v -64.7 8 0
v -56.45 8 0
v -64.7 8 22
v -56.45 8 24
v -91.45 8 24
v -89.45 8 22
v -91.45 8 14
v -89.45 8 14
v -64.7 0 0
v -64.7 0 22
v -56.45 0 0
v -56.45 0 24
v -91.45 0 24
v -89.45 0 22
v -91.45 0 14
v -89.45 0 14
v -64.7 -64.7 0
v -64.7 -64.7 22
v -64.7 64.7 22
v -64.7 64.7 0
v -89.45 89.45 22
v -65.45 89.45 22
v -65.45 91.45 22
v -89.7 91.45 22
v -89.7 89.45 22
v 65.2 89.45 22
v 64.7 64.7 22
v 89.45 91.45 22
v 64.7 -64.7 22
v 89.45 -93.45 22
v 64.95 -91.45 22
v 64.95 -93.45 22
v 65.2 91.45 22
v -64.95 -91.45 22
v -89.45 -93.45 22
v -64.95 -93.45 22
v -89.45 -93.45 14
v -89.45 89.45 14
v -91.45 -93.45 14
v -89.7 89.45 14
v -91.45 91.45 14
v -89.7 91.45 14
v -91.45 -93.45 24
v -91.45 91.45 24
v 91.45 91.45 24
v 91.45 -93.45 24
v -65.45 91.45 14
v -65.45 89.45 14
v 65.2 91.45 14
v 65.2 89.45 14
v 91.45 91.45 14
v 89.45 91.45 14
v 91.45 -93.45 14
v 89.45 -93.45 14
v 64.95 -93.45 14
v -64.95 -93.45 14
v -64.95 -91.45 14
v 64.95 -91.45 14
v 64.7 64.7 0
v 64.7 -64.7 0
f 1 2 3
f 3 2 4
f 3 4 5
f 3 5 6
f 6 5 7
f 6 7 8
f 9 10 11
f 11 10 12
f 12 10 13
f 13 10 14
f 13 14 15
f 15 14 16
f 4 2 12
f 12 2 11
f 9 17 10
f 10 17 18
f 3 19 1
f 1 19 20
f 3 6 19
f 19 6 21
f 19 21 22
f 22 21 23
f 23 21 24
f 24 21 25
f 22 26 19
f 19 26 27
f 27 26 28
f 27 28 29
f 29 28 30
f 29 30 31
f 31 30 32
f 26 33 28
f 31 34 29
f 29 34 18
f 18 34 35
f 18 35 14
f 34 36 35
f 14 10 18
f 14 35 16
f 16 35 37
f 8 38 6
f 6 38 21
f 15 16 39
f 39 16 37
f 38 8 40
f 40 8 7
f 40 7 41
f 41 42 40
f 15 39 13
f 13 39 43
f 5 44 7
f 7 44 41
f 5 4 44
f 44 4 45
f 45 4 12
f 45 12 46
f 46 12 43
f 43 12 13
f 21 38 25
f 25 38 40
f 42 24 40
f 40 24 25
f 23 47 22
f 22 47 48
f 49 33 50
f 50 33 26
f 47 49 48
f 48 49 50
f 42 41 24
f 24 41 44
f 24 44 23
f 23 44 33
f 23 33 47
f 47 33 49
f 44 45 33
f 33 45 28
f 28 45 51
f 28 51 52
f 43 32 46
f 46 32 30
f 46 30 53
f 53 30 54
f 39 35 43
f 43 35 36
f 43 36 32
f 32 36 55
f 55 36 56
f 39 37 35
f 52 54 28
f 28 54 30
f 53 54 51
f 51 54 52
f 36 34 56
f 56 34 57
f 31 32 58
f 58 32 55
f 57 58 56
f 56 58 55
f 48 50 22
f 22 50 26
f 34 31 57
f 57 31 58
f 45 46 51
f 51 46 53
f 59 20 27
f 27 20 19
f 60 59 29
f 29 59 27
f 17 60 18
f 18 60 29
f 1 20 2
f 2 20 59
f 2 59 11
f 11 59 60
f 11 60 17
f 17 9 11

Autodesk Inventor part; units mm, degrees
ref_plane "YZ Plane" through (0, 0, 0) normal (1, 0, 0) x (0, 1, 0)
ref_plane "XZ Plane" through (0, 0, 0) normal (0, 1, 0) x (-1, 0, 0)
ref_plane "XY Plane" through (0, 0, 0) normal (0, 0, 1) x (1, 0, 0)
sketch "Skizze1" plane through (0, 0, 0) normal (0, 0, 1) x (1, 0, 0)
  line L0 (-64.7, -64.7) -> (64.7, -64.7)
  line L1 (64.7, -64.7) -> (64.7, 64.7)
  line L2 (64.7, 64.7) -> (-64.7, 64.7)
  line L3 (-64.7, 64.7) -> (-64.7, -64.7)
  line L4 (-64.7, -64.7) -> (64.7, 64.7) construction
  line L5 (64.7, -64.7) -> (-64.7, 64.7) construction
  point P0 (0, 0)
  dimension "d0" = 129.4
  dimension "d1" = 129.4
extrude "Extrusion1" add sketch "Skizze1" along normal blind 22
sketch "Skizze2" plane through (0, 0, 22) normal (0, 0, 1) x (1, 0, 0)
  line L0 (-132.05, 89.45) -> (128.95, 89.45)
  line L1 (64.7, 64.7) -> (-64.7, 64.7) projected
  line L2 (89.45, 116.05) -> (89.45, -84.95)
  line L3 (-89.45, 121.95) -> (-89.45, -89.05)
  line L4 (64.7, -64.7) -> (64.7, 64.7) projected
  line L5 (-64.7, 64.7) -> (-64.7, -64.7) projected
  line L6 (-157.95, -91.45) -> (148.05, -91.45)
  line L7 (-64.7, -64.7) -> (64.7, -64.7) projected
  line L8 (89.45, -84.95) -> (89.45, -91.95)
  line L9 (-89.45, -89.05) -> (-89.45, -94.05)
  point P0 (0, 0)
  point P1 (-89.45, -91.45)
  point P2 (89.45, -91.45)
  point P3 (89.45, 89.45)
  point P4 (-89.45, 89.45)
  dimension "d4" = 24.75
  dimension "d5" = 24.75
  dimension "d6" = 24.75
  dimension "d7" = 26.75
extrude "Extrusion2" add sketch "Skizze2" along normal blind 2 contours L0 L2 L8 L6 L9 L3 | L4 L7 L5 L1
sketch "Skizze3" plane through (0, 0, 24) normal (0, 0, 1) x (1, 0, 0)
  line L0 (-91.45, 91.45) -> (91.45, 91.45)
  line L1 (91.45, 91.45) -> (91.45, -93.45)
  line L2 (91.45, -93.45) -> (-91.45, -93.45)
  line L3 (-91.45, -93.45) -> (-91.45, 91.45)
  line L4 (89.45, 89.45) -> (-89.45, 89.45) projected
  line L5 (-89.45, 89.45) -> (-89.45, -91.45) projected
  line L6 (89.45, -91.45) -> (89.45, 89.45) projected
  line L7 (-89.45, -91.45) -> (89.45, -91.45) projected
  line L8 (-89.45, 89.45) -> (-89.45, -91.45) projected
  line L9 (-89.45, 89.45) -> (89.45, 89.45)
  line L10 (89.45, 89.45) -> (89.45, -91.45)
  line L11 (89.45, -91.45) -> (-89.45, -91.45)
  line L12 (-89.45, -91.45) -> (-89.45, 89.45)
  point P0 (0, 0)
  dimension "d10" = 2
  dimension "d11" = 2
  dimension "d12" = 2
  dimension "d13" = 2
extrude "Extrusion3" add sketch "Skizze3" against normal blind 10
sketch "Skizze4" plane through (0, 0, 14) normal (0, 0, -1) x (-1, 0, 0)
  line L0 (89.45, -91.45) -> (-89.45, -91.45) projected
  line L1 (-91.45, -93.45) -> (91.45, -93.45) projected
  line L2 (89.45, -91.45) -> (64.95, -91.45)
  line L3 (64.95, -91.45) -> (64.95, -93.45)
  line L4 (64.95, -93.45) -> (89.45, -93.45)
  line L5 (89.45, -93.45) -> (89.45, -91.45)
  line L6 (-89.45, -91.45) -> (-64.95, -91.45)
  line L7 (-64.95, -91.45) -> (-64.95, -93.45)
  line L8 (-64.95, -93.45) -> (-89.45, -93.45)
  line L9 (-89.45, -93.45) -> (-89.45, -91.45)
  point P0 (0, 0)
  point P1 (89.45, -93.45)
  point P2 (-89.45, -91.45)
  point P3 (-89.45, -93.45)
  point P4 (-64.95, -93.45)
  point P5 (-64.95, -91.45)
  dimension "d16" = 24.5
  dimension "d17" = 24.5
extrude "Extrusion4" cut sketch "Skizze4" against normal up to surface (8 mm away) contours L5 L1 L3 L0 | L7 L1 L9 L0
sketch "Skizze6" plane through (91.45, -93.45, 24) normal (1, 0, 0) x (0, 0, -1)
  line L0 (10, 0) -> (10, 182.9) projected
  line L1 (0, 0) -> (10, 0)
  line L2 (10, 0) -> (10, 27)
  line L3 (10, 27) -> (0, 27)
  line L4 (0, 27) -> (0, 0)
  line L5 (0, 184.9) -> (10, 184.9) projected
  line L6 (0, 184.9) -> (10, 184.9)
  line L7 (10, 184.9) -> (10, 157.9)
  line L8 (10, 157.9) -> (0, 157.9)
  line L9 (0, 157.9) -> (0, 184.9)
  point P0 (24, 93.45)
  dimension "d20" = 27
  dimension "d21" = 27
extrude "Extrusion5" cut sketch "Skizze6" against normal up to surface (2 mm away)
sketch "Skizze7" plane through (-91.45, 91.45, 24) normal (0, 1, 0) x (1, 0, 0)
  line L0 (182.9, 10) -> (180.9, 10) projected
  line L1 (180.9, 10) -> (180.9, 2) projected
  line L2 (180.9, 0) -> (0, 0) projected
  line L3 (182.9, 10) -> (182.9, 0) projected
  line L4 (181.15, 2) -> (156.65, 2)
  line L5 (156.65, 2) -> (156.65, 10)
  line L6 (156.65, 10) -> (181.15, 10)
  line L7 (181.15, 10) -> (181.15, 2)
  line L8 (180.9, 10) -> (2, 10) projected
  line L9 (0, 0) -> (0, 10) projected
  line L10 (1.75, 2) -> (26, 2)
  line L11 (26, 2) -> (26, 10)
  line L12 (26, 10) -> (1.75, 10)
  line L13 (1.75, 10) -> (1.75, 2)
  point P0 (91.45, 24)
  point P1 (181.15, 10)
  point P2 (1.75, 10)
  point P3 (2, 10)
  point P4 (180.9, 10)
  dimension "d26" = 1.75
  dimension "d27" = 24.25
  dimension "d28" = 1.75
  dimension "d29" = 2
  dimension "d30" = 1.75
  dimension "d31" = 2
  dimension "d32" = 1.75
  dimension "d33" = 24.25
extrude "Extrusion6" cut sketch "Skizze7" against normal blind 2 contours L11 L10 L13 L12 L8 | L1 L4 L5 L6
sketch "Skizze8" plane through (91.45, -66.45, 24) normal (1, 0, 0) x (0, 0, -1)
  line L0 (10, -27) -> (2, -27) projected
  line L1 (0, 157.9) -> (10, 157.9) projected
  line L2 (10, -27) -> (0, -27)
  line L3 (0, -27) -> (0, 157.9)
  line L4 (0, 157.9) -> (10, 157.9)
  line L5 (10, 157.9) -> (10, -27)
  point P0 (24, 66.45)
extrude "Extrusion7" add sketch "Skizze8" against normal blind 2
sketch "Skizze18" plane through (-91.45, -93.45, 24) normal (-1, 0, 0) x (0, 0, 1)
  line L0 (-24, 93.45) -> (0, 93.45)
  line L1 (0, 93.45) -> (0, 101.45)
  line L2 (0, 101.45) -> (-24, 101.45)
  line L3 (-24, 101.45) -> (-24, 93.45)
  dimension "d97" = 24
  dimension "d98" = 8
extrude "Extrusion17" cut sketch "Skizze18" against normal blind 35
properties part number "2025_03_10_Reaktor_oben" material "ABS-Kunststoff"
